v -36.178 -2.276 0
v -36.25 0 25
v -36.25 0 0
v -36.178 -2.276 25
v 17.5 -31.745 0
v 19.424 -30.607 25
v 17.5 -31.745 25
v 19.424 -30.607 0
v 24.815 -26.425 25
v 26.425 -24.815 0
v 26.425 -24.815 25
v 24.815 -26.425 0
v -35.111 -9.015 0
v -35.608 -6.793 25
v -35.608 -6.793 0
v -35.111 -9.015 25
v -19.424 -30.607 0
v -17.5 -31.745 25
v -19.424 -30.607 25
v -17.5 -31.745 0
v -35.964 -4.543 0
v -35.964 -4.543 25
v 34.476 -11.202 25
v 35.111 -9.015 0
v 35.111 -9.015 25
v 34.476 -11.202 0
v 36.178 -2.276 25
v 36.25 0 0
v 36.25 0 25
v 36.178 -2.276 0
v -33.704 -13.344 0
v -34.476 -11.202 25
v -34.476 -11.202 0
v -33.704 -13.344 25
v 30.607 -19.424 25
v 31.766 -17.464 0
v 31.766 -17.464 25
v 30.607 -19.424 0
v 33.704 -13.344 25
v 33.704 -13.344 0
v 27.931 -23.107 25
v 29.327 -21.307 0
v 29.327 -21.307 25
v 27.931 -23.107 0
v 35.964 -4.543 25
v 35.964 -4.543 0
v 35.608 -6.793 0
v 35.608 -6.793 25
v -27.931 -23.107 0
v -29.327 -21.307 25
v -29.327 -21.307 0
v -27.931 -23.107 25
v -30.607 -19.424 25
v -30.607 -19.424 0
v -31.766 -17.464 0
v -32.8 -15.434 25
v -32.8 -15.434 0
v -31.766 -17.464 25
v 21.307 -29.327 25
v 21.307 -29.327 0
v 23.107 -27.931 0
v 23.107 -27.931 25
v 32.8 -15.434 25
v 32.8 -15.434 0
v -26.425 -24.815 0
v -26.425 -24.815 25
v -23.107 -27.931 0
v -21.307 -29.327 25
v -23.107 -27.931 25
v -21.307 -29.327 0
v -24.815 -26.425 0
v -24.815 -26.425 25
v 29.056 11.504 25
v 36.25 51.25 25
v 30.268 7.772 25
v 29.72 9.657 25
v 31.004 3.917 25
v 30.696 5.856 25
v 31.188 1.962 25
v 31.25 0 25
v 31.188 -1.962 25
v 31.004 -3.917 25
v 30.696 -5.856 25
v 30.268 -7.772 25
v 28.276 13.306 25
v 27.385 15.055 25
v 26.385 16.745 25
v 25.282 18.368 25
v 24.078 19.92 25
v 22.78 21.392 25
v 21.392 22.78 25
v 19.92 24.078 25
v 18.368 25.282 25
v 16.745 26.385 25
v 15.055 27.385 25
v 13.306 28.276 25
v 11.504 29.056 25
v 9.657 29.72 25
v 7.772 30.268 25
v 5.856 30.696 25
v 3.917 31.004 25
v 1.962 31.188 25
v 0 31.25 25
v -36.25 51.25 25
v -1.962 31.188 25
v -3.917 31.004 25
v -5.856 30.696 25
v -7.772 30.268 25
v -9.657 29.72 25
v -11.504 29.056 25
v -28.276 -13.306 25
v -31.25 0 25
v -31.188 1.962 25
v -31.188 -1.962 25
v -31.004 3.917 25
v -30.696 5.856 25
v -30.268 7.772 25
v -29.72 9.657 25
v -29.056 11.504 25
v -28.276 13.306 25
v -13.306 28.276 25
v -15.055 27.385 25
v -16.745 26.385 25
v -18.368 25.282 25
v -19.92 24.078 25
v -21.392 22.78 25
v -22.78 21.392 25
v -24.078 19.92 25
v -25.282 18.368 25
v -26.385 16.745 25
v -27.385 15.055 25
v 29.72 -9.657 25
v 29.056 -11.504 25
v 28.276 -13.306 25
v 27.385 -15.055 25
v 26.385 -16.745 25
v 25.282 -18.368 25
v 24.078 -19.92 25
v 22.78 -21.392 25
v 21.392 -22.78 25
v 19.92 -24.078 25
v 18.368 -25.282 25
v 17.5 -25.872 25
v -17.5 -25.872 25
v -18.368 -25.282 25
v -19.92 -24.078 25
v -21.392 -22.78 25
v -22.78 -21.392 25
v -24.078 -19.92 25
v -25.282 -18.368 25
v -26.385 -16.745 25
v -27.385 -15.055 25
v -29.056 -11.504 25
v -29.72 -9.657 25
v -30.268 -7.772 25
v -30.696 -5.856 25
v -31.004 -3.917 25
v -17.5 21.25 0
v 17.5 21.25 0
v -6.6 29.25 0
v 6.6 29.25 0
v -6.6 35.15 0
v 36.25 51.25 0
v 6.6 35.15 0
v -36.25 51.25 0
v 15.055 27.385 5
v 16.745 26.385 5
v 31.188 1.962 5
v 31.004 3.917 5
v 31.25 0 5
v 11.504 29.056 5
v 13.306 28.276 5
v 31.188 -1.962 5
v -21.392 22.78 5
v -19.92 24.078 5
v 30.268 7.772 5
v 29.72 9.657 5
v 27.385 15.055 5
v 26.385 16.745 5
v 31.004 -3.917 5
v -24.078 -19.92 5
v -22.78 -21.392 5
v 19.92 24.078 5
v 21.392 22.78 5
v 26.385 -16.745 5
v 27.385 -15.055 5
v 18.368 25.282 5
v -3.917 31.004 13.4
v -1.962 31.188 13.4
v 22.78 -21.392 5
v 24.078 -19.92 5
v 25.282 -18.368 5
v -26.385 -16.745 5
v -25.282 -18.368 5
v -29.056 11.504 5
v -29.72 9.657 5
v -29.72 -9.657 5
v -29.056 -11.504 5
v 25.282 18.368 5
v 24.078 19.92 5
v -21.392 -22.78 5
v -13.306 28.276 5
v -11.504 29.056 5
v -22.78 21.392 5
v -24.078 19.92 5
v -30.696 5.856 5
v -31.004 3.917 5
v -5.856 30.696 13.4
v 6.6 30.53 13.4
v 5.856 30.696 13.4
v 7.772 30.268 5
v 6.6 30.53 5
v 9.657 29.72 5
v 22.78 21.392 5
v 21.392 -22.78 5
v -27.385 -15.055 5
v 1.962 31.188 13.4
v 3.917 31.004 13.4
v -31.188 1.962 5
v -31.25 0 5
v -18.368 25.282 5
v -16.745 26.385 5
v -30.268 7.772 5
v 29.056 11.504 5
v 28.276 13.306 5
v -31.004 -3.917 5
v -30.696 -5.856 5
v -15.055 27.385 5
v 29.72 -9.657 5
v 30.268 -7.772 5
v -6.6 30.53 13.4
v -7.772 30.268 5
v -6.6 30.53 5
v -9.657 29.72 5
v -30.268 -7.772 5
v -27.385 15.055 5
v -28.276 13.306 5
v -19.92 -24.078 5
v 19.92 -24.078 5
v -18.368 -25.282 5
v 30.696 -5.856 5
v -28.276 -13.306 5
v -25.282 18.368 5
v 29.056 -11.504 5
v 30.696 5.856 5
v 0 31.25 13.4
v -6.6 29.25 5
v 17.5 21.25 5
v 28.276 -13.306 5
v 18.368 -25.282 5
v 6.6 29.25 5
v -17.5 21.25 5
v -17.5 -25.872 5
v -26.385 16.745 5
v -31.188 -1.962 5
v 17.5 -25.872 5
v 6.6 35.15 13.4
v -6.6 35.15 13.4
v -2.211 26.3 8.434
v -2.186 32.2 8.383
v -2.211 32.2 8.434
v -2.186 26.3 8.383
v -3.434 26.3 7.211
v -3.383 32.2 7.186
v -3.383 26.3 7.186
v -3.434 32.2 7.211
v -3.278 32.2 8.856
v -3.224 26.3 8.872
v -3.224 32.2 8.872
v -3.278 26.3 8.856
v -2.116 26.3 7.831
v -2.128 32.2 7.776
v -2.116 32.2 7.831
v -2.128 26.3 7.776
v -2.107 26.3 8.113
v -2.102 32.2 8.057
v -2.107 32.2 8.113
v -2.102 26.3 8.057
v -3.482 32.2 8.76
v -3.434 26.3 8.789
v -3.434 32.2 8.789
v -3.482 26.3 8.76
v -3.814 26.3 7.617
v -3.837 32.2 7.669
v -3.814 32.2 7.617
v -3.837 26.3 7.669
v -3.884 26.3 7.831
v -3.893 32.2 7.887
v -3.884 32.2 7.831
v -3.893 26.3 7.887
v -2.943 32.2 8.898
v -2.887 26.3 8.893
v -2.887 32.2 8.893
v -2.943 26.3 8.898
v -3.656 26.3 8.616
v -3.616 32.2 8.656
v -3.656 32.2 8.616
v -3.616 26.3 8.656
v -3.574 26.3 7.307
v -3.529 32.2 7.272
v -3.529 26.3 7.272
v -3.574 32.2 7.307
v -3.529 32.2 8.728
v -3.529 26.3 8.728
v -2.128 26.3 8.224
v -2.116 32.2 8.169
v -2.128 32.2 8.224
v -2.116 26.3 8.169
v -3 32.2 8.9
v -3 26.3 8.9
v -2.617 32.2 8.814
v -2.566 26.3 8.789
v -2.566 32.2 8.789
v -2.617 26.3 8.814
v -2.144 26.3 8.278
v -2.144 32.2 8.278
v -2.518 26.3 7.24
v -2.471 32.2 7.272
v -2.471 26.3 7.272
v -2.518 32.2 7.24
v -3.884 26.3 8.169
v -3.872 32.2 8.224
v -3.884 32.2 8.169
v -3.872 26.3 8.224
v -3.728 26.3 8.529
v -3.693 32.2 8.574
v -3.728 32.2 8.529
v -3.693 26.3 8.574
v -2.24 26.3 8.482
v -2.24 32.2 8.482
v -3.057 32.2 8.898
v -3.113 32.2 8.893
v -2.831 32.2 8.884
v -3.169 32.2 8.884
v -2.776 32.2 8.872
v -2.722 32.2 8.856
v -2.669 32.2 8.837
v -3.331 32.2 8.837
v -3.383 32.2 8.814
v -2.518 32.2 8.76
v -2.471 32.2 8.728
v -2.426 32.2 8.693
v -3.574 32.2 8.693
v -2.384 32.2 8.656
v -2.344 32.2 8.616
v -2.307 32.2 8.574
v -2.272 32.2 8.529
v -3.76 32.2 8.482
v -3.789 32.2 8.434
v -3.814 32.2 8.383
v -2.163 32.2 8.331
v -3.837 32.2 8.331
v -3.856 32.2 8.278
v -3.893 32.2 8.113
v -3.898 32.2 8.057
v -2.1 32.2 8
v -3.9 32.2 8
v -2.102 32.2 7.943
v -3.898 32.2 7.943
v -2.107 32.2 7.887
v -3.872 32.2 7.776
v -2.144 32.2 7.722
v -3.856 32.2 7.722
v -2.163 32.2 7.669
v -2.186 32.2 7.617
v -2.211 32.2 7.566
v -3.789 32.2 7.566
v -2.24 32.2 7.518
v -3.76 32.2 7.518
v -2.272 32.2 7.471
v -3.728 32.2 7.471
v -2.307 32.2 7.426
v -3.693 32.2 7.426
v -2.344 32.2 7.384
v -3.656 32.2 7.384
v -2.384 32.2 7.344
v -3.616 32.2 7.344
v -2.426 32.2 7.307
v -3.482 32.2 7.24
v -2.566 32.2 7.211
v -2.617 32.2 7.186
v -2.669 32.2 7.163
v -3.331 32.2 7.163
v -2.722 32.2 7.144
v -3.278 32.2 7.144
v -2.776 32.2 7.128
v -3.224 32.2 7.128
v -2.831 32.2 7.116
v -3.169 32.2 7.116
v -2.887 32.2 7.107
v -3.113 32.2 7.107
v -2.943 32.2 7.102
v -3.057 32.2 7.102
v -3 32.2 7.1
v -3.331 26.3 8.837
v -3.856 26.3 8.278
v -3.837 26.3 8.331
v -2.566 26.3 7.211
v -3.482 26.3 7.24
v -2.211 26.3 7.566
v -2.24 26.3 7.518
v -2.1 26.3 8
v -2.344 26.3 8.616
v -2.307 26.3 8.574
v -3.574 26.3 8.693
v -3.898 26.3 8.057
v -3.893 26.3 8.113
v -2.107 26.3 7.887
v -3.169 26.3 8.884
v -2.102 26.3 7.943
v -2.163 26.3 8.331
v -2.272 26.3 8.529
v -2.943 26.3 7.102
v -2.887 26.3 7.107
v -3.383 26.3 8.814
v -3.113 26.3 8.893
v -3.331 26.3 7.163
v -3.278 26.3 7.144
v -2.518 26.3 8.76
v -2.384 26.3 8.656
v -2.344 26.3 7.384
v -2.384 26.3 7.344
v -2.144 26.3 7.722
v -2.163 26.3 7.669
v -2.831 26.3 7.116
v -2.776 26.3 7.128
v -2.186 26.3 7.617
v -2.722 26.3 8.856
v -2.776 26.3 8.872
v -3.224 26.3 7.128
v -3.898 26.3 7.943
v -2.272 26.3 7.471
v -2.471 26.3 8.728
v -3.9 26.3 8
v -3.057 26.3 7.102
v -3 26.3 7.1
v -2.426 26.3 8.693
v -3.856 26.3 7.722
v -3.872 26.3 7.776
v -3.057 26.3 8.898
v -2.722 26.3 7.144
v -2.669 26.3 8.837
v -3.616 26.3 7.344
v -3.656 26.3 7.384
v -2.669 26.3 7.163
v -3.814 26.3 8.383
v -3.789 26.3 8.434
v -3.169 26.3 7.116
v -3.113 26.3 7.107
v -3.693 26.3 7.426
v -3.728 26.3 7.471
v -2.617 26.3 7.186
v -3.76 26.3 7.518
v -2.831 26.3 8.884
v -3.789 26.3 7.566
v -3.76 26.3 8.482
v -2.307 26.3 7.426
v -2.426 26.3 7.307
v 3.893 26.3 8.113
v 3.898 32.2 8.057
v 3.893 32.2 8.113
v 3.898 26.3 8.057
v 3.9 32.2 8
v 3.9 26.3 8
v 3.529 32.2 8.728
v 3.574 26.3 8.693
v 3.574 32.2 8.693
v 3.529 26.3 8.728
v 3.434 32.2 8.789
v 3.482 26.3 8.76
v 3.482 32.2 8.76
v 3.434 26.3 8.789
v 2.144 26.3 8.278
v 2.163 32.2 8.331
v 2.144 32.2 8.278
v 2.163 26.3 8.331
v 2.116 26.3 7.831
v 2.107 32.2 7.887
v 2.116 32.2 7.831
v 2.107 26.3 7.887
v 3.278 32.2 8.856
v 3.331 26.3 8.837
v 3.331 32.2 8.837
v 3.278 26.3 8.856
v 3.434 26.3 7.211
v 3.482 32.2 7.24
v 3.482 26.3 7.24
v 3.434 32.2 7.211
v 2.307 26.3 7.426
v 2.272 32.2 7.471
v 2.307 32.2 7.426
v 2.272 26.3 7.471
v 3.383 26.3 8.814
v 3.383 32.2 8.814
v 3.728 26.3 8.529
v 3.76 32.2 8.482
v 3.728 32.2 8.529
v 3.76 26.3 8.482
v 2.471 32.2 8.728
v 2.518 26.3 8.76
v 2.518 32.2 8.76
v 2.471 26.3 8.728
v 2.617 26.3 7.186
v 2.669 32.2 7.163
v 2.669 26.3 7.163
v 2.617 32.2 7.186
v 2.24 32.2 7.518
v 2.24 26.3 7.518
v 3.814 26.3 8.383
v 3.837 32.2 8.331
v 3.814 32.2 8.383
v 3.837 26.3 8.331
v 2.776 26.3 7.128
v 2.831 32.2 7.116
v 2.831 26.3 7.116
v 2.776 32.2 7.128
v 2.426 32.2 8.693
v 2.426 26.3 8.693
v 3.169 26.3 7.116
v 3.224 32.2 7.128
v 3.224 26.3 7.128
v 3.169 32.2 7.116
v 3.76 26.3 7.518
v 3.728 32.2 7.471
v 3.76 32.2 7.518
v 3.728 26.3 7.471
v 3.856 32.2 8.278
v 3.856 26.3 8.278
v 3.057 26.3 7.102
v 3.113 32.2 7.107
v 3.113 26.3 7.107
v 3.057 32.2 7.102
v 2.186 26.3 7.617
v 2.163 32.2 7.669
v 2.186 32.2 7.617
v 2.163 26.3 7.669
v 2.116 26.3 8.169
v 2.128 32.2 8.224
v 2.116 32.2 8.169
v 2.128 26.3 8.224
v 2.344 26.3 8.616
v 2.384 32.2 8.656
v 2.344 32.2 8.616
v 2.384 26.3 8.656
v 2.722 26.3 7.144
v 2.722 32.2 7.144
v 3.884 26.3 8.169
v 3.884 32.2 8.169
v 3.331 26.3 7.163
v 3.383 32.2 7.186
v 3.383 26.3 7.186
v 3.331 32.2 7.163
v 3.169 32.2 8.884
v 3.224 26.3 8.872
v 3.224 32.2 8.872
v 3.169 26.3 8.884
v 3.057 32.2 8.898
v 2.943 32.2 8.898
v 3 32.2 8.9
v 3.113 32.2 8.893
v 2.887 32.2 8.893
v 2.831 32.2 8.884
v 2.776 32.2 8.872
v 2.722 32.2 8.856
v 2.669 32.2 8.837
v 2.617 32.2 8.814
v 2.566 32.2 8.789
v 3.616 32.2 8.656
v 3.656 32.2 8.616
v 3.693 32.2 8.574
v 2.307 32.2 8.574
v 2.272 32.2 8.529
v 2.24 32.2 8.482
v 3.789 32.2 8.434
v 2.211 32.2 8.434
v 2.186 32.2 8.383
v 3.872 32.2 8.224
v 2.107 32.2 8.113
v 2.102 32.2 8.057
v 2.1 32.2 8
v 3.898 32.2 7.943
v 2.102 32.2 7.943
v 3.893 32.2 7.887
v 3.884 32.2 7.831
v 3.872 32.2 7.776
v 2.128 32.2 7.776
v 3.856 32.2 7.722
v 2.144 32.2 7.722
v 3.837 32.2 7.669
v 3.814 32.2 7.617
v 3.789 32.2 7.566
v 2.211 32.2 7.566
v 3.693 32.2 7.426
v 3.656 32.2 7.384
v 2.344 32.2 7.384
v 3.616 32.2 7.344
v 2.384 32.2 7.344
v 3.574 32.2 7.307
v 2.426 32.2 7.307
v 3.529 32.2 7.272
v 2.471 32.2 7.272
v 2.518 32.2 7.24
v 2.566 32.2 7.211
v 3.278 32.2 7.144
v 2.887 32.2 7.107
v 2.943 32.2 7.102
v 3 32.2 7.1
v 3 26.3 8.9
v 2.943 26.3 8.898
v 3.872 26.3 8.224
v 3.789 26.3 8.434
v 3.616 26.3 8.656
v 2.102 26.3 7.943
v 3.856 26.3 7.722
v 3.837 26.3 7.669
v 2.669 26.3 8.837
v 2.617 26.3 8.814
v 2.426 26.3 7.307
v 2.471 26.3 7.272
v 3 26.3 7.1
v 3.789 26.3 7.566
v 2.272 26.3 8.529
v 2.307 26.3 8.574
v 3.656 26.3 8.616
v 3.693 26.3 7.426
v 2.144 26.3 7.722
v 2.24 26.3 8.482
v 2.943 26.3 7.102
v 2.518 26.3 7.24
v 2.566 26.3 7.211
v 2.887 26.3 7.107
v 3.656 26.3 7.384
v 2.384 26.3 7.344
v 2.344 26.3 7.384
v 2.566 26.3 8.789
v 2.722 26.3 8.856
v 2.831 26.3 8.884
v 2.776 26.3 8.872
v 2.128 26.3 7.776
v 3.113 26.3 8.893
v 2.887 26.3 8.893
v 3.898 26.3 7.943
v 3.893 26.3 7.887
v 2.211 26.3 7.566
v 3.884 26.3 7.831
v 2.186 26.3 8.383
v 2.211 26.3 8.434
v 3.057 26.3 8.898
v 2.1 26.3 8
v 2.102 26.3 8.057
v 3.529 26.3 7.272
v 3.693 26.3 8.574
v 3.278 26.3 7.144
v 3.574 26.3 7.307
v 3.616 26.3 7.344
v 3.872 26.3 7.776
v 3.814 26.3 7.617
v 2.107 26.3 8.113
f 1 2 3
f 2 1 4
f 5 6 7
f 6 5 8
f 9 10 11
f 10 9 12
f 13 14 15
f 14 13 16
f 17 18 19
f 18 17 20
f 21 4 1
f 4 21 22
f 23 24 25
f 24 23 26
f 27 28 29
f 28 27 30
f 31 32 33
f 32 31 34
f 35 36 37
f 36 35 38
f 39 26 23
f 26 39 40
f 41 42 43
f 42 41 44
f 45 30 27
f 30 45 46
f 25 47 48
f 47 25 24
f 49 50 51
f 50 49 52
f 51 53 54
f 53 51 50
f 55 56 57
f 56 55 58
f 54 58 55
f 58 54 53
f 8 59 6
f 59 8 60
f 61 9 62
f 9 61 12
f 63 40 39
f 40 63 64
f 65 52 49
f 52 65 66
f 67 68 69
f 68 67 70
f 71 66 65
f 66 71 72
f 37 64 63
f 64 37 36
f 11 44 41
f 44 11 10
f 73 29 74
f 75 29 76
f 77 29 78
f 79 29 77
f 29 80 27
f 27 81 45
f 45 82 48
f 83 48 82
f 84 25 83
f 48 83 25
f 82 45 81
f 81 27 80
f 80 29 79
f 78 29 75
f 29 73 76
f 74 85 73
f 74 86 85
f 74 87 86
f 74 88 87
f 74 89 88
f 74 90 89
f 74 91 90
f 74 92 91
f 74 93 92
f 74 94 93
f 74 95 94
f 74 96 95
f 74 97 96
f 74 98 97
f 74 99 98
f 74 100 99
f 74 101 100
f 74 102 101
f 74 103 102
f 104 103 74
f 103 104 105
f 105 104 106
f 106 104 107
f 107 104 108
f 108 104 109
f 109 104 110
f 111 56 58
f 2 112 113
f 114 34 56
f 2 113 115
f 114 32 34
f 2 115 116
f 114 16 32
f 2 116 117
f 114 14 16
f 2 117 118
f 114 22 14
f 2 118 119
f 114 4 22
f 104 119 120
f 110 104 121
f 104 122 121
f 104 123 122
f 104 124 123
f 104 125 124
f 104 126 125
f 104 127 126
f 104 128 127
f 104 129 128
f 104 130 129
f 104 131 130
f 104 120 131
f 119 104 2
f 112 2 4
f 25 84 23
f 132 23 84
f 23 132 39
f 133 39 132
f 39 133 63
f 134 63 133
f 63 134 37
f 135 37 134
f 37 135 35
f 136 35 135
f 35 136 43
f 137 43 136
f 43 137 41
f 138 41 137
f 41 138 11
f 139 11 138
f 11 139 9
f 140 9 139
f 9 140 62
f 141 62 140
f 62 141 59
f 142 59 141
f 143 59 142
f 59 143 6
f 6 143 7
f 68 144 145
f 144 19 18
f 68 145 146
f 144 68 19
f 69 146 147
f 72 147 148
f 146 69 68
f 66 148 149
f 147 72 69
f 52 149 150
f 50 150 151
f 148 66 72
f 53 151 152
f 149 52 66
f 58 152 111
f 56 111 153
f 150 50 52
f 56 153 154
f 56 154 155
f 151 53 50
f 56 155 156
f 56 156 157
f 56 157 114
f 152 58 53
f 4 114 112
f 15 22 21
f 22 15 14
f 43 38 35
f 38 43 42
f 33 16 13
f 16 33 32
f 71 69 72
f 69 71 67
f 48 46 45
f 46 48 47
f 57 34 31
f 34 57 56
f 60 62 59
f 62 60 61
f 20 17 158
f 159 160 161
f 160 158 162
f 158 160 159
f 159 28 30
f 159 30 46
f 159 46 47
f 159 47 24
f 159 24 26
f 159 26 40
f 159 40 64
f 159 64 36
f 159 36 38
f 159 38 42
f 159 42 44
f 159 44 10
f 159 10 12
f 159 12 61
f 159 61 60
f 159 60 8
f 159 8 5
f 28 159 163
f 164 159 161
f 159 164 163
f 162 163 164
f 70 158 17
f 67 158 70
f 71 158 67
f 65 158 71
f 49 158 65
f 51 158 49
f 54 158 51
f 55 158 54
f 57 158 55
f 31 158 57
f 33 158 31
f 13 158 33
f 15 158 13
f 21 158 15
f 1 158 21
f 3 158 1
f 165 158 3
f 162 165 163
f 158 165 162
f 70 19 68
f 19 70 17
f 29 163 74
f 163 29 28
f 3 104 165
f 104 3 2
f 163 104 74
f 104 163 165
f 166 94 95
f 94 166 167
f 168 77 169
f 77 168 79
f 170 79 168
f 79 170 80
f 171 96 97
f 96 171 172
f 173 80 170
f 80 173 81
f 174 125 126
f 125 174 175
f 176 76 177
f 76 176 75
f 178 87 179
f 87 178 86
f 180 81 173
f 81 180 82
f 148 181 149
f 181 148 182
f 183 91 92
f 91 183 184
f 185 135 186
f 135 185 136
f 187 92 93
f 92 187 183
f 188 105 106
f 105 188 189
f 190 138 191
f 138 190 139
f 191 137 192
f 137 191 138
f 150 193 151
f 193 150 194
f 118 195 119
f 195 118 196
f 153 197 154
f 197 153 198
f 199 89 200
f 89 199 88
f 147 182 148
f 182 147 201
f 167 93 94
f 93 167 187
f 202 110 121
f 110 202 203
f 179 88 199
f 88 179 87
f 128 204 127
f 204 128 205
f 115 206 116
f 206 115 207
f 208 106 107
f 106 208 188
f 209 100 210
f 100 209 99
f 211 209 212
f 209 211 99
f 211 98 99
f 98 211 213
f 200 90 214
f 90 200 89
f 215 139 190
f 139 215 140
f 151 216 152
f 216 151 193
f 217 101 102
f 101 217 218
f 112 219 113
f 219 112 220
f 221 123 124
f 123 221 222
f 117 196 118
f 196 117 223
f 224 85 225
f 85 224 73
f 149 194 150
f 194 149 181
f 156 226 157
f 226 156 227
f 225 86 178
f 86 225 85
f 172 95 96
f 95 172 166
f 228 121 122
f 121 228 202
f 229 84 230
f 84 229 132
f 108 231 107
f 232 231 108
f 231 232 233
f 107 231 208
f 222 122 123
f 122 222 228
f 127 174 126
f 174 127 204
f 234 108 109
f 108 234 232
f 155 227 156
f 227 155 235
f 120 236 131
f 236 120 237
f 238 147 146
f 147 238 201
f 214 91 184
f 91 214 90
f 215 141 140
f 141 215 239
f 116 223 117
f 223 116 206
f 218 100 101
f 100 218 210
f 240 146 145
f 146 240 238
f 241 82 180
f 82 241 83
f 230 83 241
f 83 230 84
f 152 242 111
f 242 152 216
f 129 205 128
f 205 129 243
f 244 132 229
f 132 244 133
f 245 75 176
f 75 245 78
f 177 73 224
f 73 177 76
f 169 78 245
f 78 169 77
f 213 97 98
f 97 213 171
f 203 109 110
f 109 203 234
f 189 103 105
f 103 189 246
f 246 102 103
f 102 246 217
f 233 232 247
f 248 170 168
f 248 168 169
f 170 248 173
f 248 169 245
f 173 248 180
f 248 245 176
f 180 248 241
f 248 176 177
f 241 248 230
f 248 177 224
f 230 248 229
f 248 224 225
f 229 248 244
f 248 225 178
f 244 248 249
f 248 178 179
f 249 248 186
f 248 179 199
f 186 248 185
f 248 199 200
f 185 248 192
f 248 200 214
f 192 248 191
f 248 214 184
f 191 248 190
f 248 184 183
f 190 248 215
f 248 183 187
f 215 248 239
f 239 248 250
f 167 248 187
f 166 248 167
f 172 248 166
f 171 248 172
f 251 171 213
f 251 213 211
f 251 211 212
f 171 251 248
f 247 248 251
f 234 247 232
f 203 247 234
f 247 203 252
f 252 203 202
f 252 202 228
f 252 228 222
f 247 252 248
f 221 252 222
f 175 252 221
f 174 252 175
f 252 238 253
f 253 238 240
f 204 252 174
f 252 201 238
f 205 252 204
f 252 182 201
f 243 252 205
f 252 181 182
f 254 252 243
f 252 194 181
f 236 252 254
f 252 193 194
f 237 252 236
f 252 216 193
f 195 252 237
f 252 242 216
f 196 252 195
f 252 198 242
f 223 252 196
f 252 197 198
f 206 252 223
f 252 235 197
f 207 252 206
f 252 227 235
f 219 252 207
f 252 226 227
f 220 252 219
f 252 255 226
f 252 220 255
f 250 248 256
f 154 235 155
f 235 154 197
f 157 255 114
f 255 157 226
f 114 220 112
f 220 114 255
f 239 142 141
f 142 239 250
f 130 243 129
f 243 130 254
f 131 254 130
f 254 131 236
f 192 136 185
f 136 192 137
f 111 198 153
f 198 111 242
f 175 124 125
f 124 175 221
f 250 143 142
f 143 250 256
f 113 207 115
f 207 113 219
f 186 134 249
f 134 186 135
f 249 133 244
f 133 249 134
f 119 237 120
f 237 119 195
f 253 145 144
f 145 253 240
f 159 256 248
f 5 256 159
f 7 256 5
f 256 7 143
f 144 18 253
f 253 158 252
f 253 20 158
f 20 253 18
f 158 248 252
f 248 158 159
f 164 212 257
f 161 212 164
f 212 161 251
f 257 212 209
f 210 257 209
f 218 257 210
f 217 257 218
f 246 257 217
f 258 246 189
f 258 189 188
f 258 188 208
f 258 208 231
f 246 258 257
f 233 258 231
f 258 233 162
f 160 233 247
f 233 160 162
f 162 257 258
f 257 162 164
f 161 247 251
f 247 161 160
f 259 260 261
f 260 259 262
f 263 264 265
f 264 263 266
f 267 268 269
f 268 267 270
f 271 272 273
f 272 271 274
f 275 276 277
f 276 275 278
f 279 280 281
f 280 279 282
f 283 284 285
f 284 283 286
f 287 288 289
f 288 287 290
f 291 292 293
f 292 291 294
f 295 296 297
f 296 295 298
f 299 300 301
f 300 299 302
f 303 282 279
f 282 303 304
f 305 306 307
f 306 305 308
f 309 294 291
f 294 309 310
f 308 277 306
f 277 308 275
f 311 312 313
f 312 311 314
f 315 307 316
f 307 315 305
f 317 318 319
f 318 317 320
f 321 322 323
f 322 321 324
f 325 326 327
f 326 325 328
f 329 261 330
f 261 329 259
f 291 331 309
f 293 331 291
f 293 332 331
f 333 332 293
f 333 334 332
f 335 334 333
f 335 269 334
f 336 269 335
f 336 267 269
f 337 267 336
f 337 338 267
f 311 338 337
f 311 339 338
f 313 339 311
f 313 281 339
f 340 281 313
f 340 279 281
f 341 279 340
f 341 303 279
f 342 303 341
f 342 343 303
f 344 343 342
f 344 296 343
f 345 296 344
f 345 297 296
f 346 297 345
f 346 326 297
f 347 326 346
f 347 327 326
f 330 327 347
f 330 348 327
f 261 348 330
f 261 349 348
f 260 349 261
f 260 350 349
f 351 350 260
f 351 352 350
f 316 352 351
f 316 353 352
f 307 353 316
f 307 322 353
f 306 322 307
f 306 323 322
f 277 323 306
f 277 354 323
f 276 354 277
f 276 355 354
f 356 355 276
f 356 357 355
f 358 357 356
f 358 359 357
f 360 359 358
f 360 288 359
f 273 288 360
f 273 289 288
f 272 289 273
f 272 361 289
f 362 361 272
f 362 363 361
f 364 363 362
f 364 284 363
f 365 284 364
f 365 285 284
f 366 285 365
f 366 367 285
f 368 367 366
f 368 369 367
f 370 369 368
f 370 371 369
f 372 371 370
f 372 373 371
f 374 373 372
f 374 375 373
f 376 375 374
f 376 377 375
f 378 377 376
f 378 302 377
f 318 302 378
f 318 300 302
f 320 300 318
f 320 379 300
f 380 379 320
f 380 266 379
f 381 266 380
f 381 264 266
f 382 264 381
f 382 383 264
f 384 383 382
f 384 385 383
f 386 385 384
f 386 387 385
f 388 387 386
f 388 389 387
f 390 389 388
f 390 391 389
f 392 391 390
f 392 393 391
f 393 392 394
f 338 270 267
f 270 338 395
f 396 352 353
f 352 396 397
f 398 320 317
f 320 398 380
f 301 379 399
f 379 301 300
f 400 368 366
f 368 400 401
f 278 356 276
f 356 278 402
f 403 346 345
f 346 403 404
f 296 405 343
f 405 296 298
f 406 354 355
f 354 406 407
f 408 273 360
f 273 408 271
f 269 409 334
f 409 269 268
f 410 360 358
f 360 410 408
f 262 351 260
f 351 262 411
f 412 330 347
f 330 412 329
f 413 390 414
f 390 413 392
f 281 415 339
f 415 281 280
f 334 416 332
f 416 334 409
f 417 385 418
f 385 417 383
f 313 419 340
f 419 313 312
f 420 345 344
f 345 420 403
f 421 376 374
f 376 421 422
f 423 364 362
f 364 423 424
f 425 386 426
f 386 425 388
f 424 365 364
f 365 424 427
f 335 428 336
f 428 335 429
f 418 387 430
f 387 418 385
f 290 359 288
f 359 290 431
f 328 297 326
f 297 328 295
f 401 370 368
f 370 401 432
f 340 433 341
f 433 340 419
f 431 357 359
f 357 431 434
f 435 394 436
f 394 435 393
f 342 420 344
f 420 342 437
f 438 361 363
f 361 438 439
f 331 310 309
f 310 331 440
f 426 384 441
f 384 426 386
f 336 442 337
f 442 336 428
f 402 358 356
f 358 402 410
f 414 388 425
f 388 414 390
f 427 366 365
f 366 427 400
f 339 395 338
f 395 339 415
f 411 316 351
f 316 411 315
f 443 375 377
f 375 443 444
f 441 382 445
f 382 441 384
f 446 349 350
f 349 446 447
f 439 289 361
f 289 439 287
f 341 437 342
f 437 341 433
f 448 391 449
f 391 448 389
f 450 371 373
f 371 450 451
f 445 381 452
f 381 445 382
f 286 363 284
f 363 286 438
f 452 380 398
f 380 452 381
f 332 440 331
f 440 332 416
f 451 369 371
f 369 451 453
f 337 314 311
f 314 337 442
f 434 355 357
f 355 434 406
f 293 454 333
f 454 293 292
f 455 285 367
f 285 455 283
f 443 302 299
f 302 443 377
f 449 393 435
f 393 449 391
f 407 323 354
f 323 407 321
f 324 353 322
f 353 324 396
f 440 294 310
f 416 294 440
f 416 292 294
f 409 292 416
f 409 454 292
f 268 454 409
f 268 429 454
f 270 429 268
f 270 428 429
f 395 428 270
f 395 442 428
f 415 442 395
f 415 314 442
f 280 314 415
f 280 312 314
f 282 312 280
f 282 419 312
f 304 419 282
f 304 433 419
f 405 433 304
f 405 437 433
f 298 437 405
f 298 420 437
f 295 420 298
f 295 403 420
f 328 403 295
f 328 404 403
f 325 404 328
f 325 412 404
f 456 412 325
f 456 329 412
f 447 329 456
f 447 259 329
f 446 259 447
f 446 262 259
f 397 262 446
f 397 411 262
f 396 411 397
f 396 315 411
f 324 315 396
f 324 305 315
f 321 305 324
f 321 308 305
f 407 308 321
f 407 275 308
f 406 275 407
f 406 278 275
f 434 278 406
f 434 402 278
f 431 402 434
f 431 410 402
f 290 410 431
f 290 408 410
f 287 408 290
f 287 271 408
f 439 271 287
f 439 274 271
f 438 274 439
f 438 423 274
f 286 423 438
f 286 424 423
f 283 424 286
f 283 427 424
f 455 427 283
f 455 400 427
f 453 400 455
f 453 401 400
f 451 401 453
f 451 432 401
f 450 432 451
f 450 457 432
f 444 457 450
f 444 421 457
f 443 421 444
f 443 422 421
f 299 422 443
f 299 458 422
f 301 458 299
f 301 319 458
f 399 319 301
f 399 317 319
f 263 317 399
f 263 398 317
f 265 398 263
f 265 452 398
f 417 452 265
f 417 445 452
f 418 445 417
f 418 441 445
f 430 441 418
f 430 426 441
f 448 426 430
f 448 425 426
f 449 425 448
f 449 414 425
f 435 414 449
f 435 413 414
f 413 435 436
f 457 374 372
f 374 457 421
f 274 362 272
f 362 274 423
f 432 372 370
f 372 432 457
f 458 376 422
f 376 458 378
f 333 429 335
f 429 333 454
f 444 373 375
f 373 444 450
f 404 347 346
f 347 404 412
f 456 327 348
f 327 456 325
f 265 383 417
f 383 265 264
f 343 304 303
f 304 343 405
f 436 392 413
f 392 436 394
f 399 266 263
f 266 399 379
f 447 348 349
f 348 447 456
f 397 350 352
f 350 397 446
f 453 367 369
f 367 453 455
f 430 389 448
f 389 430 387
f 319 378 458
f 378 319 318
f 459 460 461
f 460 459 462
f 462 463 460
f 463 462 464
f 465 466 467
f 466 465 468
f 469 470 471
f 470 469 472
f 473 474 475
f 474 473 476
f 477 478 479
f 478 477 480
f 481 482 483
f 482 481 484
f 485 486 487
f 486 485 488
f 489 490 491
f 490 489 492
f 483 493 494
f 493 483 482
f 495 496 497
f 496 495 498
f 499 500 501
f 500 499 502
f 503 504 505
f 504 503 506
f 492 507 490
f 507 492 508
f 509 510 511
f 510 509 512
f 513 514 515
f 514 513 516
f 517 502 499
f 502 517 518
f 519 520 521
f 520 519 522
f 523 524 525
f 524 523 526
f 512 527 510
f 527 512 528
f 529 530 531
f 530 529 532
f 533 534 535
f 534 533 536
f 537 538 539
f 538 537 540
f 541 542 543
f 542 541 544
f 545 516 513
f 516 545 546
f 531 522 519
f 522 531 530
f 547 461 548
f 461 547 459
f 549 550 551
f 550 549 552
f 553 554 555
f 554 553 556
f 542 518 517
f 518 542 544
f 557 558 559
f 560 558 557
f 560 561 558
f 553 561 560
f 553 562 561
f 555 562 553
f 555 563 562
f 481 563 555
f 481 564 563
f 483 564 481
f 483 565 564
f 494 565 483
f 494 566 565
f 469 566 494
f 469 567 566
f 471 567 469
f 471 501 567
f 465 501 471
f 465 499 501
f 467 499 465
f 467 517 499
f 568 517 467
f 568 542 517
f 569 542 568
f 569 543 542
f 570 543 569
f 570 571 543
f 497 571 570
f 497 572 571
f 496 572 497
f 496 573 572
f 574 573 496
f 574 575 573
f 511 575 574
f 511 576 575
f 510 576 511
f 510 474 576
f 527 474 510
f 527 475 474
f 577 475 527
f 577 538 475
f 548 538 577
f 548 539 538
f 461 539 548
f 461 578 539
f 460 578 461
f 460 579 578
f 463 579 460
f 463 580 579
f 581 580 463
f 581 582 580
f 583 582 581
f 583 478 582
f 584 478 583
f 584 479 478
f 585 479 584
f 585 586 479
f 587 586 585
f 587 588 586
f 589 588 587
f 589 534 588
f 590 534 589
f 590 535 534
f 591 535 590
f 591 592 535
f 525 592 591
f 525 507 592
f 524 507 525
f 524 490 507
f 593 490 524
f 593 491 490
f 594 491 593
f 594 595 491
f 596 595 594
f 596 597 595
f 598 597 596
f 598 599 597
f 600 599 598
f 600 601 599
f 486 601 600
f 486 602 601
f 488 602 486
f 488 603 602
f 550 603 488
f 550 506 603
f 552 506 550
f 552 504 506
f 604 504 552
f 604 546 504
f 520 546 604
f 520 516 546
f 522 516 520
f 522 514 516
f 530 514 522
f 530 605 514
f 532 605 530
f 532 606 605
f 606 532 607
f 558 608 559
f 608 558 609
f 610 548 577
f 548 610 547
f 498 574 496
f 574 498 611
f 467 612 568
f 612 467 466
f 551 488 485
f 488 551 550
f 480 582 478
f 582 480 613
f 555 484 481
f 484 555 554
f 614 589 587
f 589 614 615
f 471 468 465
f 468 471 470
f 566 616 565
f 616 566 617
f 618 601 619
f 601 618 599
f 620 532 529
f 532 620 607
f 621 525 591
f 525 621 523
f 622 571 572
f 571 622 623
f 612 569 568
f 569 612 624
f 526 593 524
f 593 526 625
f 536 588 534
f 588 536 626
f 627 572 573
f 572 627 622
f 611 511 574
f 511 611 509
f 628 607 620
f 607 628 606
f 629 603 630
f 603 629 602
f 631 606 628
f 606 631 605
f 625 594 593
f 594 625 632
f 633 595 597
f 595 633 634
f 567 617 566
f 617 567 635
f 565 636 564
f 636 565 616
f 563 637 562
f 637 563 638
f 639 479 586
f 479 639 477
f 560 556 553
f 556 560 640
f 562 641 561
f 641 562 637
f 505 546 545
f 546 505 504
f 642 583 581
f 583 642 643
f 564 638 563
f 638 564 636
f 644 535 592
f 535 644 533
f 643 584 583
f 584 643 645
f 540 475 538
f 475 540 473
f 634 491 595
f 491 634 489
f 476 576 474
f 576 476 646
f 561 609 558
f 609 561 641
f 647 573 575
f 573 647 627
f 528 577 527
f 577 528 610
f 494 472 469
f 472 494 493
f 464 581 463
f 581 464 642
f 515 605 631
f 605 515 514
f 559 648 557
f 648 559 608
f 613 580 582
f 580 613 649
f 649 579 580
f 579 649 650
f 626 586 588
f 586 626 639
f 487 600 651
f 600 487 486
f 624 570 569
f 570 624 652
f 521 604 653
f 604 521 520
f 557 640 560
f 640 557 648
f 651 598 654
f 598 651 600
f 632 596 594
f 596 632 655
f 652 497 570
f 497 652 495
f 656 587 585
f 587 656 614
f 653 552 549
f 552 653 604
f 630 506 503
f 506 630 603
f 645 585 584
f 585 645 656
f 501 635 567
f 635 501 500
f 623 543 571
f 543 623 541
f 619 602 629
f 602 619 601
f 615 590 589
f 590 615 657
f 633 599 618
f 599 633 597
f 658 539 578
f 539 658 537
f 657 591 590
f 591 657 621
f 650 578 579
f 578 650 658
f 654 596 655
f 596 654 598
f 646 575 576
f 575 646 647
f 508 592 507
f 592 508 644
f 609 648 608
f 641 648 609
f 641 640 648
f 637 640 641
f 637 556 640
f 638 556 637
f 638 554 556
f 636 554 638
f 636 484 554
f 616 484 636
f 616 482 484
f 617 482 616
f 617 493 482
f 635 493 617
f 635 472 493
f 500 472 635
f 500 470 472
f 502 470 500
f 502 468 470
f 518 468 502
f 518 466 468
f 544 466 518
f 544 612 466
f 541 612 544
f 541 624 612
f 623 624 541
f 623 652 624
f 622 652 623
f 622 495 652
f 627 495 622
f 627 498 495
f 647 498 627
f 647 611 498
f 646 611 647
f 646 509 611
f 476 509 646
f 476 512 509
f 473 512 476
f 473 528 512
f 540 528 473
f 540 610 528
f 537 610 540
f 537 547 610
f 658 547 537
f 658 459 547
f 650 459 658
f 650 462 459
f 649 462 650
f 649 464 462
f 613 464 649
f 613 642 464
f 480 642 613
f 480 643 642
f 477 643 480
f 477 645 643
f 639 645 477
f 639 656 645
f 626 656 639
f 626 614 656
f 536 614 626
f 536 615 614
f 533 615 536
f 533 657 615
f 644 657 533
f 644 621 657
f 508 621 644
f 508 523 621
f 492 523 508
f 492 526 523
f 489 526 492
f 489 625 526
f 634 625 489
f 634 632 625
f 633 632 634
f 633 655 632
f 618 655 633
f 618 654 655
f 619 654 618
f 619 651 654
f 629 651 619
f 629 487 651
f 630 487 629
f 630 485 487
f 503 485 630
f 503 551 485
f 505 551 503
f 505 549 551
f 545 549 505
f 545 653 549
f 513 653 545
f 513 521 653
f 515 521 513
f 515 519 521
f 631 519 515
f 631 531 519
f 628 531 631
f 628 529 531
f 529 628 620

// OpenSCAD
// ========================================================
// HANGING HOOKSWITCH CRADLE FOR SUBMINIATURE LEVER SWITCH
// Gemini-suggested alternate design, not adopted (see CAD-BACKLOG.md) —
// kept here verbatim for reference/comparison against the lever mechanism.
// Known issue, not fixed: the mounting-pin translate math doesn't line up
// with the switch pocket it's meant to pin into (~3mm off in Y).
// ========================================================

$fn = 100; // Smooth curves

// --- HANDSET MEASUREMENTS ---
earpiece_d   = 60.9 + 1.6; // 62.5 mm cup ID
handle_w     = 32.8 + 2.2; // 35.0 mm front slot
cup_height   = 25.0;

// --- MICROSWITCH MEASUREMENTS ---
sw_L = 12.9 + 0.3; // 13.2 mm
sw_H = 6.2 + 0.2;  // 6.4 mm
sw_W = 5.7 + 0.2;  // 5.9 mm
sw_pitch = 6.0;

// --- MODULE: MAIN HOOK CRADLE ---
module hanging_cradle() {
    difference() {
        // Main outer body block
        union() {
            cylinder(d = earpiece_d + 10, h = cup_height);
            translate([- (earpiece_d + 10)/2, 0, 0])
                cube([earpiece_d + 10, (earpiece_d + 10)/2 + 15, cup_height]);
        }

        // Inner cup for earpiece
        translate([0, 0, 5])
            cylinder(d = earpiece_d, h = cup_height);

        // Front pass-through slot for handle neck
        translate([-handle_w/2, -(earpiece_d + 20)/2, -1])
            cube([handle_w, earpiece_d, cup_height + 2]);

        // Internal Pocket for Tiny Switch
        translate([-sw_L/2, (earpiece_d/2) - 2, 5])
            cube([sw_L, sw_W, sw_H + 2]);

        // Wiring / Pin clearance slot beneath switch
        translate([-sw_L/2, (earpiece_d/2) - 2, 0])
            cube([sw_L, sw_W, 6]);
    }

    // Tiny mounting pins for 6mm pitch switch holes
    translate([-sw_pitch/2, (earpiece_d/2) + (sw_W/2) - 2, 8])
        rotate([90, 0, 0]) cylinder(d=1.8, h=sw_W);
    translate([sw_pitch/2, (earpiece_d/2) + (sw_W/2) - 2, 8])
        rotate([90, 0, 0]) cylinder(d=1.8, h=sw_W);
}

hanging_cradle();
